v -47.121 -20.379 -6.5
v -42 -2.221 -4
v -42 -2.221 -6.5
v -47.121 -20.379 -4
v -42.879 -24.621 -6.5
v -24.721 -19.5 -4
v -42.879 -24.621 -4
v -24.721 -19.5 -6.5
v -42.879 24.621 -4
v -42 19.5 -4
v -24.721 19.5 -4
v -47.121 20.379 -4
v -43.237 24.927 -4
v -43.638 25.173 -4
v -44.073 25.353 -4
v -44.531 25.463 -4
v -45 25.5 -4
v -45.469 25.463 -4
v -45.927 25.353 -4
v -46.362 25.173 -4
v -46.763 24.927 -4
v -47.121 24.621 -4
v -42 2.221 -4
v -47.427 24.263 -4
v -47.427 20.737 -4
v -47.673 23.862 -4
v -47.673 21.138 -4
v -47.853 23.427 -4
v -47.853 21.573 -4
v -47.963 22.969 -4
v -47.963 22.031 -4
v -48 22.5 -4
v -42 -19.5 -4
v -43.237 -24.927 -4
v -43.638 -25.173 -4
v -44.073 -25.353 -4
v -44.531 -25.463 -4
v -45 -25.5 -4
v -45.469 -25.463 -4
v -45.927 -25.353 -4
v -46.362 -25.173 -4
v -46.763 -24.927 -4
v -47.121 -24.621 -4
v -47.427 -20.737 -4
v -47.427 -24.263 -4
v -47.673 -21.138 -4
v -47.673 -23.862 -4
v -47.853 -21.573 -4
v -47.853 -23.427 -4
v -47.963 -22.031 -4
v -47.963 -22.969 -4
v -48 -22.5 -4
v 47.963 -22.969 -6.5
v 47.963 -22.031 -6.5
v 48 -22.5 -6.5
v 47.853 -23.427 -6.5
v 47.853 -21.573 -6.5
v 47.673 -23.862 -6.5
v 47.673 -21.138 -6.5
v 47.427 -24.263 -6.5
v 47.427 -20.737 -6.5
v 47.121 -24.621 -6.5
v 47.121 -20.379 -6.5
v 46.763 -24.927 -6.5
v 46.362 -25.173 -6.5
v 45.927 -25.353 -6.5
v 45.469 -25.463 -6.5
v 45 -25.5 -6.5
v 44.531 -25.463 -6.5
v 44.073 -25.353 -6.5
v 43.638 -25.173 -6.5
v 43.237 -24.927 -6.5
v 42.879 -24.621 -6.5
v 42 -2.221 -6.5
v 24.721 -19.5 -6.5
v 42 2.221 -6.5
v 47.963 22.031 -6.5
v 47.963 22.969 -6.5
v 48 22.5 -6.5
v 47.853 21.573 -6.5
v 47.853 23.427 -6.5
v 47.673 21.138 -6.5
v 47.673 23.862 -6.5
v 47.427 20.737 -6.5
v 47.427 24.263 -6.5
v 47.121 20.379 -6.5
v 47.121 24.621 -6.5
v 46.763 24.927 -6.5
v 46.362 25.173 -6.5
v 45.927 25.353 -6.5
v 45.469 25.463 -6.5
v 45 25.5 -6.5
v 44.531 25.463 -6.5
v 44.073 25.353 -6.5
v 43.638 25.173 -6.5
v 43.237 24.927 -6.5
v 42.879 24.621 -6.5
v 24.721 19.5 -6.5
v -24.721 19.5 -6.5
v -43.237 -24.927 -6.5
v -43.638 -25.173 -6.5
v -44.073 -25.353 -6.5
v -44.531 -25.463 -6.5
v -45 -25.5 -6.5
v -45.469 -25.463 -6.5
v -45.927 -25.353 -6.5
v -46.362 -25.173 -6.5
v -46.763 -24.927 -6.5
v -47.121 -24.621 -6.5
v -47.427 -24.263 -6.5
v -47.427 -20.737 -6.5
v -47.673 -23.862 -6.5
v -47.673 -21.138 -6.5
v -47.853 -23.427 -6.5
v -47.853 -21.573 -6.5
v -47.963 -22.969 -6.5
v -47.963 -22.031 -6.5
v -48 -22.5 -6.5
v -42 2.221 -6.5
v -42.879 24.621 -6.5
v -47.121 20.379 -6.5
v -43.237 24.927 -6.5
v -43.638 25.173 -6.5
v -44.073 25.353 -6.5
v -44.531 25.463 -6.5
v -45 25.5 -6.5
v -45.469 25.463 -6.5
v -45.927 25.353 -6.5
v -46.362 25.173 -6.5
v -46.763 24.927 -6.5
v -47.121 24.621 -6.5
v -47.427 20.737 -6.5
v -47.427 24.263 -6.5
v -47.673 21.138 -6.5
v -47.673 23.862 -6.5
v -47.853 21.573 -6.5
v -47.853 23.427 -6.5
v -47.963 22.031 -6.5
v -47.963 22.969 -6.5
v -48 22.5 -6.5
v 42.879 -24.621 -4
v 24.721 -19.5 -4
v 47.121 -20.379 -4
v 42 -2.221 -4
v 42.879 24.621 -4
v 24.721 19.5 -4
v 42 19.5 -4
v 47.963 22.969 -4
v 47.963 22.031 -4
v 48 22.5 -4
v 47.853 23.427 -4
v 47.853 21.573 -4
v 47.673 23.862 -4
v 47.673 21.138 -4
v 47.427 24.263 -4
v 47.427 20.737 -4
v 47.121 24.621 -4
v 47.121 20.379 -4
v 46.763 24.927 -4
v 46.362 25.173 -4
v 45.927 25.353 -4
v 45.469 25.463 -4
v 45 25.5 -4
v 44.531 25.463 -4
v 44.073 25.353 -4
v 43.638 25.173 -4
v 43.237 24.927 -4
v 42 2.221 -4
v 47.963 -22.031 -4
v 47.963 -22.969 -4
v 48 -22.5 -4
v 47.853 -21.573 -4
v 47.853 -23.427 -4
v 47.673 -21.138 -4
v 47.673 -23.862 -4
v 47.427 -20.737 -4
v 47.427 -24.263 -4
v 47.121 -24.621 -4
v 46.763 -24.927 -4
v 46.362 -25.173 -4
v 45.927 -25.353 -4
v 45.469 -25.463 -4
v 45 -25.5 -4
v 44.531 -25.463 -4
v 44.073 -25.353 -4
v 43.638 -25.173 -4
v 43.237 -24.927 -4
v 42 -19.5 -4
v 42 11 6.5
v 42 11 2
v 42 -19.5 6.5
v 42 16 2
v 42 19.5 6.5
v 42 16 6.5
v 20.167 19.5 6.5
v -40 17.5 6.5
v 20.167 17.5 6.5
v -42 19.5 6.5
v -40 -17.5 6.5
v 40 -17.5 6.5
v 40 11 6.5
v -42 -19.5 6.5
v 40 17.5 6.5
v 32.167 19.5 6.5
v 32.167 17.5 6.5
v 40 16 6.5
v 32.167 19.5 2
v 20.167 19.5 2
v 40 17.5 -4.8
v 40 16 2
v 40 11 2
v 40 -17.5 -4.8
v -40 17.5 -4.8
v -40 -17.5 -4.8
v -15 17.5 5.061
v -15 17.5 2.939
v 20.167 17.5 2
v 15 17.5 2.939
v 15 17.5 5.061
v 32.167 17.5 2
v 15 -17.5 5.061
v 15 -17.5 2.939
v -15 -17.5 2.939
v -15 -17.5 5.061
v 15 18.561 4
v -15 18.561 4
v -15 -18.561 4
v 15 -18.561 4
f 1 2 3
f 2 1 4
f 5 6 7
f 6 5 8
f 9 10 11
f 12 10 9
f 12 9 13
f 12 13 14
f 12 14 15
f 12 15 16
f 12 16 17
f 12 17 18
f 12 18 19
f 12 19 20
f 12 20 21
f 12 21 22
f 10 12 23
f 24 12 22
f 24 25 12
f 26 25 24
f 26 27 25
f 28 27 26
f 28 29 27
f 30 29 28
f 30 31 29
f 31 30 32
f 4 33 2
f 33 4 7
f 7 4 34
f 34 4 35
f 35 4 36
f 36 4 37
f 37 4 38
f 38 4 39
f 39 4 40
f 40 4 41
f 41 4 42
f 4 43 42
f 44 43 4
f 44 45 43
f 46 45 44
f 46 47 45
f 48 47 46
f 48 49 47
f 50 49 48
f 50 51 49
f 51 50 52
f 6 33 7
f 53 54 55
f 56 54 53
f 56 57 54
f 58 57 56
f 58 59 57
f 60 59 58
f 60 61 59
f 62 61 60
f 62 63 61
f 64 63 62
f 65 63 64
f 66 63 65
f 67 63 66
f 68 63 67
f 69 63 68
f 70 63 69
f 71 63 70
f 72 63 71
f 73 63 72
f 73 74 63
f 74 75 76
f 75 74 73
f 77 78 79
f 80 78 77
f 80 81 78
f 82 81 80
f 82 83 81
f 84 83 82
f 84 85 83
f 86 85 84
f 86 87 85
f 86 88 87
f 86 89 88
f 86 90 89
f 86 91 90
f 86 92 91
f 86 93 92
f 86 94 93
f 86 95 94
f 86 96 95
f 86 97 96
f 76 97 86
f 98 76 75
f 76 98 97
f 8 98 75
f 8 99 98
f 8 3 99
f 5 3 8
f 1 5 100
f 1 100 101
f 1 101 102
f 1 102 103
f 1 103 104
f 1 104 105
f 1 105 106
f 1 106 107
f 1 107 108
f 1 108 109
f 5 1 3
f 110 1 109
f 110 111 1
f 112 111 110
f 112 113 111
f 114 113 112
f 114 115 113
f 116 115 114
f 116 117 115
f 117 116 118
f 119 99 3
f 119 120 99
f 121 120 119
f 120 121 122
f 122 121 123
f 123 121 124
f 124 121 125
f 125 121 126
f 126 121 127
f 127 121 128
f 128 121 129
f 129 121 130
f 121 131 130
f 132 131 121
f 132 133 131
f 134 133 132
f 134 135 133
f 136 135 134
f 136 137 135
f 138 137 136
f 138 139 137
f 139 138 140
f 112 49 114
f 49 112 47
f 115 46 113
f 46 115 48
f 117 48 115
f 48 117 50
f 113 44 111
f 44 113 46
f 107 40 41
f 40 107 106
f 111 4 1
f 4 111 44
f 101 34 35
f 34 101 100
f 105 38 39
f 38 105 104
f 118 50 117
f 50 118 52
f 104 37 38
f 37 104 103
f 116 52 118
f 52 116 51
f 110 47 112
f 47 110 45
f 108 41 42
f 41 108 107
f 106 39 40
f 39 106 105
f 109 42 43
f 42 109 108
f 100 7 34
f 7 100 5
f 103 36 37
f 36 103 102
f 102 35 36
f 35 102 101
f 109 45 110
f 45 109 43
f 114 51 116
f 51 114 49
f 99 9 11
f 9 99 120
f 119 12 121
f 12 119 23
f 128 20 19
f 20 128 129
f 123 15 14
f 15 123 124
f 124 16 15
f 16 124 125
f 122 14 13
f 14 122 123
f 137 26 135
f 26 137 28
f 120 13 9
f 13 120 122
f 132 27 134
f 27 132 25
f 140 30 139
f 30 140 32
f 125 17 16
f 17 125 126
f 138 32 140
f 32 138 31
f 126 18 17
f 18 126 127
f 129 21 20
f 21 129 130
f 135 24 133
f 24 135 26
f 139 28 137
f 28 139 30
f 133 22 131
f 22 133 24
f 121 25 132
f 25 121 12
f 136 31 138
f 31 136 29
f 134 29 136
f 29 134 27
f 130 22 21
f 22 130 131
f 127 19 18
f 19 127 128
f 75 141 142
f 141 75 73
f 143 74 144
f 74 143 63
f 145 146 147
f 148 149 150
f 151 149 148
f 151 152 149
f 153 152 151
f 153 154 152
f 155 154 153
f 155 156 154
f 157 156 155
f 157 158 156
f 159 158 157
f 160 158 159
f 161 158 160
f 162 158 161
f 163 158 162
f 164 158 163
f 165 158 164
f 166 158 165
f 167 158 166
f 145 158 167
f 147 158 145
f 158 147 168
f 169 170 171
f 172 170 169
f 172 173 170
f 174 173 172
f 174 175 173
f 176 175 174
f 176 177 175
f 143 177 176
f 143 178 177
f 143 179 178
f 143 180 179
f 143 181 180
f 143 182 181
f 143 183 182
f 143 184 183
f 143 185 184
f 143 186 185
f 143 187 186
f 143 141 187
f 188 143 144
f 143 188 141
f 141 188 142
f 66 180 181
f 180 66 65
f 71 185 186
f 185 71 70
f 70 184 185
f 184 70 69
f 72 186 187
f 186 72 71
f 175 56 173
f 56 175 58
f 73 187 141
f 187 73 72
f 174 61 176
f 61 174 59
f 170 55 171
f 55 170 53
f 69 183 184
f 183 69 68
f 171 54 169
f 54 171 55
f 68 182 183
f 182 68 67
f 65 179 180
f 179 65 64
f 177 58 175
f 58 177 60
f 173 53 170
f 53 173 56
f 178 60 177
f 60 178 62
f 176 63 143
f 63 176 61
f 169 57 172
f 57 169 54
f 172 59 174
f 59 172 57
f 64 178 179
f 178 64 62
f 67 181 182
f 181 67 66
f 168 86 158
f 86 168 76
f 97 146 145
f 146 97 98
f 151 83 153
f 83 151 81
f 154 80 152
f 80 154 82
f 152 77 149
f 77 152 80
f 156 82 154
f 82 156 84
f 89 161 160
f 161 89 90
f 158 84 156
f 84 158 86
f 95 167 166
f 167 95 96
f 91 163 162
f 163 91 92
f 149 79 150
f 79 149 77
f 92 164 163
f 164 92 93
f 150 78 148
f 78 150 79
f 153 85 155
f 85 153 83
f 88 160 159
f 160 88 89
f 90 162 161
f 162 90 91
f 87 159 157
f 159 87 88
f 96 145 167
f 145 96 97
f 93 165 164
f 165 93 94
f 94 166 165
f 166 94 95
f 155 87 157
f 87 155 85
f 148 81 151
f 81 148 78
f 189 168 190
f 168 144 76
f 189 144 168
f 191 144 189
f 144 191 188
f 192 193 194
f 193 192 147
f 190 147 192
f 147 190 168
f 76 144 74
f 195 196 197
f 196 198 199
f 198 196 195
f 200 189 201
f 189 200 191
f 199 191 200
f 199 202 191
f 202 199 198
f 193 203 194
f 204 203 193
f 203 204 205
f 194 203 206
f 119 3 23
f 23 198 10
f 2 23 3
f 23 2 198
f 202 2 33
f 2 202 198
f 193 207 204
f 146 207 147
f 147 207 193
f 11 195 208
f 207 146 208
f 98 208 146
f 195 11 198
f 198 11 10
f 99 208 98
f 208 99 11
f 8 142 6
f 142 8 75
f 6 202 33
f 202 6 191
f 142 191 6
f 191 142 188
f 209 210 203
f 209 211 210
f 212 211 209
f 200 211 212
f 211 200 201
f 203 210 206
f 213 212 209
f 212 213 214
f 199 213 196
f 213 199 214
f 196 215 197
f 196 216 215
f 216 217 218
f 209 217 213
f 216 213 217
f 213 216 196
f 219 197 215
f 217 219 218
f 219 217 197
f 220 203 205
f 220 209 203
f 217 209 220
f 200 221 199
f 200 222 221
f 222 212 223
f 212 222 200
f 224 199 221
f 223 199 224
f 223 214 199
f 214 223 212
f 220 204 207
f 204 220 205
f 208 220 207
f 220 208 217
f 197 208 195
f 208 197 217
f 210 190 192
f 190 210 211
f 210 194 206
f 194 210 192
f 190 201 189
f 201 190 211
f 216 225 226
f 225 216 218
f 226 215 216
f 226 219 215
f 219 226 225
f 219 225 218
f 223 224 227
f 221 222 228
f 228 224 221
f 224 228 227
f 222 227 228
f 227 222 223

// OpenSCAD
sizeX = 84;  
sizeY = 39;  

border = 2;
border2 = 2 * border;
baseheight = 1.7;

height = 13;

picotHeight = 10;
picotStartZ = (height / 2) - 4;

picotR = 2.0;
footHole = 1.5;

offsetCutOutCenterX = (sizeX - border2) / 6 + 2.5; // not evenly centered usb port
offsetCutOutCenterZ = border + 5;

footHeight = 2.5;

y1 = -3;
y2 = 3;
yy1 = -14.2;
yy2 = 14.2;
x1 = 0;
x2 = 20;
z1 = -footHeight / 2;
z2 = -z1;

angle = 45;
offset = 3;
offsetZ = -(height - footHeight) / 2;

useFeet = true;
useFeetHoles = false;
// will cause problems when 3d printing (overhang...)
useFeetRubberHoles = false;

footRubberHoleHeight = 2;
footRubberHoleRadius = 5;

snapwidth = 30;
snapsize = 1.5;

CubePoints = [
  [  x1,  y1,  z1 ],  //0
  [ x2,  yy1,  z1 ],  //1
  [ x2,  yy2,  z1 ],  //2
  [  x1,  y2,  z1 ],  //3
  [  x1,  y1,  z2 ],  //4
  [ x2,  yy1,  z2 ],  //5
  [ x2,  yy2,  z2 ],  //6
  [  x1,  y2,  z2 ]]; //7
  
CubeFaces = [
  [0,1,2,3],  // bottom
  [4,5,1,0],  // front
  [7,6,5,4],  // top
  [5,6,2,1],  // right
  [6,7,3,2],  // back
  [7,4,0,3]]; // left

module foot() {  
    color("lightgreen")
    difference() {
        union() {
            polyhedron( CubePoints, CubeFaces );
            cylinder(h = footHeight, r = 3.0, $fn = 40, center = true);
        }
        {
            if (useFeetHoles)
                cylinder(h = footHeight + 2, r = footHole, $fn = 40, center = true);
            if (useFeetRubberHoles)
                translate([0, 0, -2])
                cylinder(h = footRubberHoleHeight, 
                         r = footRubberHoleRadius, 
                         $fn = 40, 
                         center = true);
        }
    }
}

difference() {
    union() {
     color("lightblue") {
       // box
        cube(size=[sizeX, sizeY, height], center = true);
             }
  //      translate([sizeX / 2, 0, 0])
  //          cube(size = [6, 12, height], center = true);
  //      translate([-sizeX / 2, 0, 0])
  //          cube(size = [6, 12, height], center = true);
        
    // feet
    if (useFeet) { 
        translate([-((sizeX / 2) + offset), -((sizeY / 2) + offset), offsetZ]) 
            rotate([0, 0, angle]) foot();
        translate([-((sizeX / 2) + offset), ((sizeY / 2) + offset), offsetZ])  
            rotate([0, 0, -angle]) foot();
        translate([((sizeX / 2) + offset), -((sizeY / 2) + offset), offsetZ])  
            rotate([0, 0, 180 - angle]) foot();
        translate([((sizeX / 2) + offset), ((sizeY / 2) + offset), offsetZ])  
            rotate([0, 0, 180 + angle]) foot();
    }  
    }
    {
        // inside
        translate([0, 0, baseheight])
        cube(size=[sizeX - border2, sizeY - border2, height], center = true); 
                
        // usb cutout
        translate([(sizeX / 2) - offsetCutOutCenterX, (sizeY / 2), offsetCutOutCenterZ])
          cube(size=[12, 10, 10], center = true);
        
        // reset button
        translate([(sizeX / 2), (sizeY / 2) - 6, offsetCutOutCenterZ])
          cube(size=[5, 5, 10], center = true);
        
        // snap 1
         translate([0, sizeY / 2 - border, 4])
           rotate([45, 0, 0])
           cube(size=[snapwidth, snapsize, snapsize], center = true);

       // snap 2
         translate([0, -(sizeY / 2 - border), 4])
           rotate([45, 0, 0])
           cube(size=[snapwidth, snapsize, snapsize], center = true);

    }
   
}
